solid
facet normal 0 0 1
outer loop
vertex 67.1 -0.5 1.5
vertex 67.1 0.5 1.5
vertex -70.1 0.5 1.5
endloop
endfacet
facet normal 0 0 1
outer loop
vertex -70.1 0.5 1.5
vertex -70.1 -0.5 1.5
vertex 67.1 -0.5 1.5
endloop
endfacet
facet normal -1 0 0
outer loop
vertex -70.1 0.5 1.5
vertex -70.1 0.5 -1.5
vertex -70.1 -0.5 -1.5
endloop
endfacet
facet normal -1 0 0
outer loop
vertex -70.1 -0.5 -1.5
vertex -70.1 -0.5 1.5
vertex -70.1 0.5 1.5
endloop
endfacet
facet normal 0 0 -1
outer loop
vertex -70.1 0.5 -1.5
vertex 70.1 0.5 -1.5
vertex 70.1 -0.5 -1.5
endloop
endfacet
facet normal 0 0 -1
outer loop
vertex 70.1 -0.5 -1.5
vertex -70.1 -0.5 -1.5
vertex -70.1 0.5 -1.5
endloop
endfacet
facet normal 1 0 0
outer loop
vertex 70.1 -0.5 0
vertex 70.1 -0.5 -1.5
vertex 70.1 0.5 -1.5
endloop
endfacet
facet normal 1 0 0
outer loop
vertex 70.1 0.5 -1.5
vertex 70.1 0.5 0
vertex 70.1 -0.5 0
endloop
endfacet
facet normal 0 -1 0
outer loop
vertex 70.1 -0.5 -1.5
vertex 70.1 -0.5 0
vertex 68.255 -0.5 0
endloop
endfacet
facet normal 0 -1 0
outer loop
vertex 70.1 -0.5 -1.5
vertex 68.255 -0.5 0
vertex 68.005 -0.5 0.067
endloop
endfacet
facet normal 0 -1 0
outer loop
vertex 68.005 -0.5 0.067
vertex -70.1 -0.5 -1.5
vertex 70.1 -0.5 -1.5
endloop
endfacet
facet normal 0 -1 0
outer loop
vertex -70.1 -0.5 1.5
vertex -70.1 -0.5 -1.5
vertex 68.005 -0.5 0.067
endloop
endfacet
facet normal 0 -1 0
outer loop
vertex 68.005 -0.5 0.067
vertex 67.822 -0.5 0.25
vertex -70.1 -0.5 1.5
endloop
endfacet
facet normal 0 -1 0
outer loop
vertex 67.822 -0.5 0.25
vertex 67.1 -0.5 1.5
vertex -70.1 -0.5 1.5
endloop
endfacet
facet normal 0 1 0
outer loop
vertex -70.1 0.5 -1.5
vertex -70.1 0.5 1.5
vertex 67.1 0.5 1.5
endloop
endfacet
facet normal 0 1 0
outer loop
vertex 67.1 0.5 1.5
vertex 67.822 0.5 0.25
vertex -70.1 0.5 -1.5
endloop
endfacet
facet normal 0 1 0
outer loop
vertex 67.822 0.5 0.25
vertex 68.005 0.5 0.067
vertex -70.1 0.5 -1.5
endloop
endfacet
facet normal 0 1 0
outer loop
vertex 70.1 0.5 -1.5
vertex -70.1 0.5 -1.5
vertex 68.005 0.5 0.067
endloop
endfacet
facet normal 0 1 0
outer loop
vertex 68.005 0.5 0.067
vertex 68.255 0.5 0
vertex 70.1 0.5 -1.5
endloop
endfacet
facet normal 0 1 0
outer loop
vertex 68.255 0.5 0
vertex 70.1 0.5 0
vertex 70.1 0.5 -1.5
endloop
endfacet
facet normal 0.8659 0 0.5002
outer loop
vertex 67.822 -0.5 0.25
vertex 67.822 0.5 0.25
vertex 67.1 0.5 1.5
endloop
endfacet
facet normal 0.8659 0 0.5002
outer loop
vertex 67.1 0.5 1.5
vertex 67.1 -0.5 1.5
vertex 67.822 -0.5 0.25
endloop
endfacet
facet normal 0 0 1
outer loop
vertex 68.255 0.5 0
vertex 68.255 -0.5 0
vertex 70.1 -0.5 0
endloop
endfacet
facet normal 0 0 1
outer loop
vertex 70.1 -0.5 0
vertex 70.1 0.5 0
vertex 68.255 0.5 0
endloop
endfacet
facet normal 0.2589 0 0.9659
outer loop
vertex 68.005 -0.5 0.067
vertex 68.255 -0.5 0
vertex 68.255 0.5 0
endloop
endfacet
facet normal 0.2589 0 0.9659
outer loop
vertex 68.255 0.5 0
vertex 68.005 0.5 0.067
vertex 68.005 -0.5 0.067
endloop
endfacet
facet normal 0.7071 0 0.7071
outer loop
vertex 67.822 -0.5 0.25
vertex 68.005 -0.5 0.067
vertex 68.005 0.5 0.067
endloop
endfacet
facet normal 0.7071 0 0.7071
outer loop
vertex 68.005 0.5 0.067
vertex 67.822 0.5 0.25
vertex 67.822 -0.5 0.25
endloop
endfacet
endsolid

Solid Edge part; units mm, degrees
sketch "Sketch1" plane through (0, 0, 0) normal (1, 0, 0) x (0, 1, 0)
  line L0 (-0.5, 1.5) -> (-0.5, -1.5)
  line L1 (-0.5, -1.5) -> (0.5, -1.5)
  line L2 (0.5, -1.5) -> (0.5, 1.5)
  line L3 (0.5, 1.5) -> (-0.5, 1.5)
extrude "Protrusion1" add sketch "Sketch1" along normal mid plane 140.2
sketch "Sketch2" plane through (0, -0.5, 0) normal (0, -1, 0) x (1, 0, 0)
  line L0 (67.966, 0) -> (70.1, 0)
  line L1 (70.1, 0) -> (70.1, 1.5)
  line L2 (70.1, 1.5) -> (67.1, 1.5)
  line L3 (67.1, 1.5) -> (67.966, 0)
extrude "ExtrudedCutout_1" cut sketch "Sketch2" against normal blind 2.6684
fillet "Round_1" radius 0.5 1 edges at (67.966, 0, 0)
